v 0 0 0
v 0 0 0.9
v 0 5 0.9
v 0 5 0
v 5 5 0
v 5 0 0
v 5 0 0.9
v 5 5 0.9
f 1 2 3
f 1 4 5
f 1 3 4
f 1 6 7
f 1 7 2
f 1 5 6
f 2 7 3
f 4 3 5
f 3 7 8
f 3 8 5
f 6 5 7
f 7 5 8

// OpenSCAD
/* Warning, this is a very basic generator with a lot of approximation 
input data : [VQFN, LDX, 5x5x0.9mm, 40, , A, C04-00496A]
generated by com.zoubworld.electronics.cad.model3d.Basic
Date : Sun Feb 15 10:50:48 CET 2026
*/

//body
color("black")
translate([0,0,0])
cube([5.0,5.0,0.9], center=false);
